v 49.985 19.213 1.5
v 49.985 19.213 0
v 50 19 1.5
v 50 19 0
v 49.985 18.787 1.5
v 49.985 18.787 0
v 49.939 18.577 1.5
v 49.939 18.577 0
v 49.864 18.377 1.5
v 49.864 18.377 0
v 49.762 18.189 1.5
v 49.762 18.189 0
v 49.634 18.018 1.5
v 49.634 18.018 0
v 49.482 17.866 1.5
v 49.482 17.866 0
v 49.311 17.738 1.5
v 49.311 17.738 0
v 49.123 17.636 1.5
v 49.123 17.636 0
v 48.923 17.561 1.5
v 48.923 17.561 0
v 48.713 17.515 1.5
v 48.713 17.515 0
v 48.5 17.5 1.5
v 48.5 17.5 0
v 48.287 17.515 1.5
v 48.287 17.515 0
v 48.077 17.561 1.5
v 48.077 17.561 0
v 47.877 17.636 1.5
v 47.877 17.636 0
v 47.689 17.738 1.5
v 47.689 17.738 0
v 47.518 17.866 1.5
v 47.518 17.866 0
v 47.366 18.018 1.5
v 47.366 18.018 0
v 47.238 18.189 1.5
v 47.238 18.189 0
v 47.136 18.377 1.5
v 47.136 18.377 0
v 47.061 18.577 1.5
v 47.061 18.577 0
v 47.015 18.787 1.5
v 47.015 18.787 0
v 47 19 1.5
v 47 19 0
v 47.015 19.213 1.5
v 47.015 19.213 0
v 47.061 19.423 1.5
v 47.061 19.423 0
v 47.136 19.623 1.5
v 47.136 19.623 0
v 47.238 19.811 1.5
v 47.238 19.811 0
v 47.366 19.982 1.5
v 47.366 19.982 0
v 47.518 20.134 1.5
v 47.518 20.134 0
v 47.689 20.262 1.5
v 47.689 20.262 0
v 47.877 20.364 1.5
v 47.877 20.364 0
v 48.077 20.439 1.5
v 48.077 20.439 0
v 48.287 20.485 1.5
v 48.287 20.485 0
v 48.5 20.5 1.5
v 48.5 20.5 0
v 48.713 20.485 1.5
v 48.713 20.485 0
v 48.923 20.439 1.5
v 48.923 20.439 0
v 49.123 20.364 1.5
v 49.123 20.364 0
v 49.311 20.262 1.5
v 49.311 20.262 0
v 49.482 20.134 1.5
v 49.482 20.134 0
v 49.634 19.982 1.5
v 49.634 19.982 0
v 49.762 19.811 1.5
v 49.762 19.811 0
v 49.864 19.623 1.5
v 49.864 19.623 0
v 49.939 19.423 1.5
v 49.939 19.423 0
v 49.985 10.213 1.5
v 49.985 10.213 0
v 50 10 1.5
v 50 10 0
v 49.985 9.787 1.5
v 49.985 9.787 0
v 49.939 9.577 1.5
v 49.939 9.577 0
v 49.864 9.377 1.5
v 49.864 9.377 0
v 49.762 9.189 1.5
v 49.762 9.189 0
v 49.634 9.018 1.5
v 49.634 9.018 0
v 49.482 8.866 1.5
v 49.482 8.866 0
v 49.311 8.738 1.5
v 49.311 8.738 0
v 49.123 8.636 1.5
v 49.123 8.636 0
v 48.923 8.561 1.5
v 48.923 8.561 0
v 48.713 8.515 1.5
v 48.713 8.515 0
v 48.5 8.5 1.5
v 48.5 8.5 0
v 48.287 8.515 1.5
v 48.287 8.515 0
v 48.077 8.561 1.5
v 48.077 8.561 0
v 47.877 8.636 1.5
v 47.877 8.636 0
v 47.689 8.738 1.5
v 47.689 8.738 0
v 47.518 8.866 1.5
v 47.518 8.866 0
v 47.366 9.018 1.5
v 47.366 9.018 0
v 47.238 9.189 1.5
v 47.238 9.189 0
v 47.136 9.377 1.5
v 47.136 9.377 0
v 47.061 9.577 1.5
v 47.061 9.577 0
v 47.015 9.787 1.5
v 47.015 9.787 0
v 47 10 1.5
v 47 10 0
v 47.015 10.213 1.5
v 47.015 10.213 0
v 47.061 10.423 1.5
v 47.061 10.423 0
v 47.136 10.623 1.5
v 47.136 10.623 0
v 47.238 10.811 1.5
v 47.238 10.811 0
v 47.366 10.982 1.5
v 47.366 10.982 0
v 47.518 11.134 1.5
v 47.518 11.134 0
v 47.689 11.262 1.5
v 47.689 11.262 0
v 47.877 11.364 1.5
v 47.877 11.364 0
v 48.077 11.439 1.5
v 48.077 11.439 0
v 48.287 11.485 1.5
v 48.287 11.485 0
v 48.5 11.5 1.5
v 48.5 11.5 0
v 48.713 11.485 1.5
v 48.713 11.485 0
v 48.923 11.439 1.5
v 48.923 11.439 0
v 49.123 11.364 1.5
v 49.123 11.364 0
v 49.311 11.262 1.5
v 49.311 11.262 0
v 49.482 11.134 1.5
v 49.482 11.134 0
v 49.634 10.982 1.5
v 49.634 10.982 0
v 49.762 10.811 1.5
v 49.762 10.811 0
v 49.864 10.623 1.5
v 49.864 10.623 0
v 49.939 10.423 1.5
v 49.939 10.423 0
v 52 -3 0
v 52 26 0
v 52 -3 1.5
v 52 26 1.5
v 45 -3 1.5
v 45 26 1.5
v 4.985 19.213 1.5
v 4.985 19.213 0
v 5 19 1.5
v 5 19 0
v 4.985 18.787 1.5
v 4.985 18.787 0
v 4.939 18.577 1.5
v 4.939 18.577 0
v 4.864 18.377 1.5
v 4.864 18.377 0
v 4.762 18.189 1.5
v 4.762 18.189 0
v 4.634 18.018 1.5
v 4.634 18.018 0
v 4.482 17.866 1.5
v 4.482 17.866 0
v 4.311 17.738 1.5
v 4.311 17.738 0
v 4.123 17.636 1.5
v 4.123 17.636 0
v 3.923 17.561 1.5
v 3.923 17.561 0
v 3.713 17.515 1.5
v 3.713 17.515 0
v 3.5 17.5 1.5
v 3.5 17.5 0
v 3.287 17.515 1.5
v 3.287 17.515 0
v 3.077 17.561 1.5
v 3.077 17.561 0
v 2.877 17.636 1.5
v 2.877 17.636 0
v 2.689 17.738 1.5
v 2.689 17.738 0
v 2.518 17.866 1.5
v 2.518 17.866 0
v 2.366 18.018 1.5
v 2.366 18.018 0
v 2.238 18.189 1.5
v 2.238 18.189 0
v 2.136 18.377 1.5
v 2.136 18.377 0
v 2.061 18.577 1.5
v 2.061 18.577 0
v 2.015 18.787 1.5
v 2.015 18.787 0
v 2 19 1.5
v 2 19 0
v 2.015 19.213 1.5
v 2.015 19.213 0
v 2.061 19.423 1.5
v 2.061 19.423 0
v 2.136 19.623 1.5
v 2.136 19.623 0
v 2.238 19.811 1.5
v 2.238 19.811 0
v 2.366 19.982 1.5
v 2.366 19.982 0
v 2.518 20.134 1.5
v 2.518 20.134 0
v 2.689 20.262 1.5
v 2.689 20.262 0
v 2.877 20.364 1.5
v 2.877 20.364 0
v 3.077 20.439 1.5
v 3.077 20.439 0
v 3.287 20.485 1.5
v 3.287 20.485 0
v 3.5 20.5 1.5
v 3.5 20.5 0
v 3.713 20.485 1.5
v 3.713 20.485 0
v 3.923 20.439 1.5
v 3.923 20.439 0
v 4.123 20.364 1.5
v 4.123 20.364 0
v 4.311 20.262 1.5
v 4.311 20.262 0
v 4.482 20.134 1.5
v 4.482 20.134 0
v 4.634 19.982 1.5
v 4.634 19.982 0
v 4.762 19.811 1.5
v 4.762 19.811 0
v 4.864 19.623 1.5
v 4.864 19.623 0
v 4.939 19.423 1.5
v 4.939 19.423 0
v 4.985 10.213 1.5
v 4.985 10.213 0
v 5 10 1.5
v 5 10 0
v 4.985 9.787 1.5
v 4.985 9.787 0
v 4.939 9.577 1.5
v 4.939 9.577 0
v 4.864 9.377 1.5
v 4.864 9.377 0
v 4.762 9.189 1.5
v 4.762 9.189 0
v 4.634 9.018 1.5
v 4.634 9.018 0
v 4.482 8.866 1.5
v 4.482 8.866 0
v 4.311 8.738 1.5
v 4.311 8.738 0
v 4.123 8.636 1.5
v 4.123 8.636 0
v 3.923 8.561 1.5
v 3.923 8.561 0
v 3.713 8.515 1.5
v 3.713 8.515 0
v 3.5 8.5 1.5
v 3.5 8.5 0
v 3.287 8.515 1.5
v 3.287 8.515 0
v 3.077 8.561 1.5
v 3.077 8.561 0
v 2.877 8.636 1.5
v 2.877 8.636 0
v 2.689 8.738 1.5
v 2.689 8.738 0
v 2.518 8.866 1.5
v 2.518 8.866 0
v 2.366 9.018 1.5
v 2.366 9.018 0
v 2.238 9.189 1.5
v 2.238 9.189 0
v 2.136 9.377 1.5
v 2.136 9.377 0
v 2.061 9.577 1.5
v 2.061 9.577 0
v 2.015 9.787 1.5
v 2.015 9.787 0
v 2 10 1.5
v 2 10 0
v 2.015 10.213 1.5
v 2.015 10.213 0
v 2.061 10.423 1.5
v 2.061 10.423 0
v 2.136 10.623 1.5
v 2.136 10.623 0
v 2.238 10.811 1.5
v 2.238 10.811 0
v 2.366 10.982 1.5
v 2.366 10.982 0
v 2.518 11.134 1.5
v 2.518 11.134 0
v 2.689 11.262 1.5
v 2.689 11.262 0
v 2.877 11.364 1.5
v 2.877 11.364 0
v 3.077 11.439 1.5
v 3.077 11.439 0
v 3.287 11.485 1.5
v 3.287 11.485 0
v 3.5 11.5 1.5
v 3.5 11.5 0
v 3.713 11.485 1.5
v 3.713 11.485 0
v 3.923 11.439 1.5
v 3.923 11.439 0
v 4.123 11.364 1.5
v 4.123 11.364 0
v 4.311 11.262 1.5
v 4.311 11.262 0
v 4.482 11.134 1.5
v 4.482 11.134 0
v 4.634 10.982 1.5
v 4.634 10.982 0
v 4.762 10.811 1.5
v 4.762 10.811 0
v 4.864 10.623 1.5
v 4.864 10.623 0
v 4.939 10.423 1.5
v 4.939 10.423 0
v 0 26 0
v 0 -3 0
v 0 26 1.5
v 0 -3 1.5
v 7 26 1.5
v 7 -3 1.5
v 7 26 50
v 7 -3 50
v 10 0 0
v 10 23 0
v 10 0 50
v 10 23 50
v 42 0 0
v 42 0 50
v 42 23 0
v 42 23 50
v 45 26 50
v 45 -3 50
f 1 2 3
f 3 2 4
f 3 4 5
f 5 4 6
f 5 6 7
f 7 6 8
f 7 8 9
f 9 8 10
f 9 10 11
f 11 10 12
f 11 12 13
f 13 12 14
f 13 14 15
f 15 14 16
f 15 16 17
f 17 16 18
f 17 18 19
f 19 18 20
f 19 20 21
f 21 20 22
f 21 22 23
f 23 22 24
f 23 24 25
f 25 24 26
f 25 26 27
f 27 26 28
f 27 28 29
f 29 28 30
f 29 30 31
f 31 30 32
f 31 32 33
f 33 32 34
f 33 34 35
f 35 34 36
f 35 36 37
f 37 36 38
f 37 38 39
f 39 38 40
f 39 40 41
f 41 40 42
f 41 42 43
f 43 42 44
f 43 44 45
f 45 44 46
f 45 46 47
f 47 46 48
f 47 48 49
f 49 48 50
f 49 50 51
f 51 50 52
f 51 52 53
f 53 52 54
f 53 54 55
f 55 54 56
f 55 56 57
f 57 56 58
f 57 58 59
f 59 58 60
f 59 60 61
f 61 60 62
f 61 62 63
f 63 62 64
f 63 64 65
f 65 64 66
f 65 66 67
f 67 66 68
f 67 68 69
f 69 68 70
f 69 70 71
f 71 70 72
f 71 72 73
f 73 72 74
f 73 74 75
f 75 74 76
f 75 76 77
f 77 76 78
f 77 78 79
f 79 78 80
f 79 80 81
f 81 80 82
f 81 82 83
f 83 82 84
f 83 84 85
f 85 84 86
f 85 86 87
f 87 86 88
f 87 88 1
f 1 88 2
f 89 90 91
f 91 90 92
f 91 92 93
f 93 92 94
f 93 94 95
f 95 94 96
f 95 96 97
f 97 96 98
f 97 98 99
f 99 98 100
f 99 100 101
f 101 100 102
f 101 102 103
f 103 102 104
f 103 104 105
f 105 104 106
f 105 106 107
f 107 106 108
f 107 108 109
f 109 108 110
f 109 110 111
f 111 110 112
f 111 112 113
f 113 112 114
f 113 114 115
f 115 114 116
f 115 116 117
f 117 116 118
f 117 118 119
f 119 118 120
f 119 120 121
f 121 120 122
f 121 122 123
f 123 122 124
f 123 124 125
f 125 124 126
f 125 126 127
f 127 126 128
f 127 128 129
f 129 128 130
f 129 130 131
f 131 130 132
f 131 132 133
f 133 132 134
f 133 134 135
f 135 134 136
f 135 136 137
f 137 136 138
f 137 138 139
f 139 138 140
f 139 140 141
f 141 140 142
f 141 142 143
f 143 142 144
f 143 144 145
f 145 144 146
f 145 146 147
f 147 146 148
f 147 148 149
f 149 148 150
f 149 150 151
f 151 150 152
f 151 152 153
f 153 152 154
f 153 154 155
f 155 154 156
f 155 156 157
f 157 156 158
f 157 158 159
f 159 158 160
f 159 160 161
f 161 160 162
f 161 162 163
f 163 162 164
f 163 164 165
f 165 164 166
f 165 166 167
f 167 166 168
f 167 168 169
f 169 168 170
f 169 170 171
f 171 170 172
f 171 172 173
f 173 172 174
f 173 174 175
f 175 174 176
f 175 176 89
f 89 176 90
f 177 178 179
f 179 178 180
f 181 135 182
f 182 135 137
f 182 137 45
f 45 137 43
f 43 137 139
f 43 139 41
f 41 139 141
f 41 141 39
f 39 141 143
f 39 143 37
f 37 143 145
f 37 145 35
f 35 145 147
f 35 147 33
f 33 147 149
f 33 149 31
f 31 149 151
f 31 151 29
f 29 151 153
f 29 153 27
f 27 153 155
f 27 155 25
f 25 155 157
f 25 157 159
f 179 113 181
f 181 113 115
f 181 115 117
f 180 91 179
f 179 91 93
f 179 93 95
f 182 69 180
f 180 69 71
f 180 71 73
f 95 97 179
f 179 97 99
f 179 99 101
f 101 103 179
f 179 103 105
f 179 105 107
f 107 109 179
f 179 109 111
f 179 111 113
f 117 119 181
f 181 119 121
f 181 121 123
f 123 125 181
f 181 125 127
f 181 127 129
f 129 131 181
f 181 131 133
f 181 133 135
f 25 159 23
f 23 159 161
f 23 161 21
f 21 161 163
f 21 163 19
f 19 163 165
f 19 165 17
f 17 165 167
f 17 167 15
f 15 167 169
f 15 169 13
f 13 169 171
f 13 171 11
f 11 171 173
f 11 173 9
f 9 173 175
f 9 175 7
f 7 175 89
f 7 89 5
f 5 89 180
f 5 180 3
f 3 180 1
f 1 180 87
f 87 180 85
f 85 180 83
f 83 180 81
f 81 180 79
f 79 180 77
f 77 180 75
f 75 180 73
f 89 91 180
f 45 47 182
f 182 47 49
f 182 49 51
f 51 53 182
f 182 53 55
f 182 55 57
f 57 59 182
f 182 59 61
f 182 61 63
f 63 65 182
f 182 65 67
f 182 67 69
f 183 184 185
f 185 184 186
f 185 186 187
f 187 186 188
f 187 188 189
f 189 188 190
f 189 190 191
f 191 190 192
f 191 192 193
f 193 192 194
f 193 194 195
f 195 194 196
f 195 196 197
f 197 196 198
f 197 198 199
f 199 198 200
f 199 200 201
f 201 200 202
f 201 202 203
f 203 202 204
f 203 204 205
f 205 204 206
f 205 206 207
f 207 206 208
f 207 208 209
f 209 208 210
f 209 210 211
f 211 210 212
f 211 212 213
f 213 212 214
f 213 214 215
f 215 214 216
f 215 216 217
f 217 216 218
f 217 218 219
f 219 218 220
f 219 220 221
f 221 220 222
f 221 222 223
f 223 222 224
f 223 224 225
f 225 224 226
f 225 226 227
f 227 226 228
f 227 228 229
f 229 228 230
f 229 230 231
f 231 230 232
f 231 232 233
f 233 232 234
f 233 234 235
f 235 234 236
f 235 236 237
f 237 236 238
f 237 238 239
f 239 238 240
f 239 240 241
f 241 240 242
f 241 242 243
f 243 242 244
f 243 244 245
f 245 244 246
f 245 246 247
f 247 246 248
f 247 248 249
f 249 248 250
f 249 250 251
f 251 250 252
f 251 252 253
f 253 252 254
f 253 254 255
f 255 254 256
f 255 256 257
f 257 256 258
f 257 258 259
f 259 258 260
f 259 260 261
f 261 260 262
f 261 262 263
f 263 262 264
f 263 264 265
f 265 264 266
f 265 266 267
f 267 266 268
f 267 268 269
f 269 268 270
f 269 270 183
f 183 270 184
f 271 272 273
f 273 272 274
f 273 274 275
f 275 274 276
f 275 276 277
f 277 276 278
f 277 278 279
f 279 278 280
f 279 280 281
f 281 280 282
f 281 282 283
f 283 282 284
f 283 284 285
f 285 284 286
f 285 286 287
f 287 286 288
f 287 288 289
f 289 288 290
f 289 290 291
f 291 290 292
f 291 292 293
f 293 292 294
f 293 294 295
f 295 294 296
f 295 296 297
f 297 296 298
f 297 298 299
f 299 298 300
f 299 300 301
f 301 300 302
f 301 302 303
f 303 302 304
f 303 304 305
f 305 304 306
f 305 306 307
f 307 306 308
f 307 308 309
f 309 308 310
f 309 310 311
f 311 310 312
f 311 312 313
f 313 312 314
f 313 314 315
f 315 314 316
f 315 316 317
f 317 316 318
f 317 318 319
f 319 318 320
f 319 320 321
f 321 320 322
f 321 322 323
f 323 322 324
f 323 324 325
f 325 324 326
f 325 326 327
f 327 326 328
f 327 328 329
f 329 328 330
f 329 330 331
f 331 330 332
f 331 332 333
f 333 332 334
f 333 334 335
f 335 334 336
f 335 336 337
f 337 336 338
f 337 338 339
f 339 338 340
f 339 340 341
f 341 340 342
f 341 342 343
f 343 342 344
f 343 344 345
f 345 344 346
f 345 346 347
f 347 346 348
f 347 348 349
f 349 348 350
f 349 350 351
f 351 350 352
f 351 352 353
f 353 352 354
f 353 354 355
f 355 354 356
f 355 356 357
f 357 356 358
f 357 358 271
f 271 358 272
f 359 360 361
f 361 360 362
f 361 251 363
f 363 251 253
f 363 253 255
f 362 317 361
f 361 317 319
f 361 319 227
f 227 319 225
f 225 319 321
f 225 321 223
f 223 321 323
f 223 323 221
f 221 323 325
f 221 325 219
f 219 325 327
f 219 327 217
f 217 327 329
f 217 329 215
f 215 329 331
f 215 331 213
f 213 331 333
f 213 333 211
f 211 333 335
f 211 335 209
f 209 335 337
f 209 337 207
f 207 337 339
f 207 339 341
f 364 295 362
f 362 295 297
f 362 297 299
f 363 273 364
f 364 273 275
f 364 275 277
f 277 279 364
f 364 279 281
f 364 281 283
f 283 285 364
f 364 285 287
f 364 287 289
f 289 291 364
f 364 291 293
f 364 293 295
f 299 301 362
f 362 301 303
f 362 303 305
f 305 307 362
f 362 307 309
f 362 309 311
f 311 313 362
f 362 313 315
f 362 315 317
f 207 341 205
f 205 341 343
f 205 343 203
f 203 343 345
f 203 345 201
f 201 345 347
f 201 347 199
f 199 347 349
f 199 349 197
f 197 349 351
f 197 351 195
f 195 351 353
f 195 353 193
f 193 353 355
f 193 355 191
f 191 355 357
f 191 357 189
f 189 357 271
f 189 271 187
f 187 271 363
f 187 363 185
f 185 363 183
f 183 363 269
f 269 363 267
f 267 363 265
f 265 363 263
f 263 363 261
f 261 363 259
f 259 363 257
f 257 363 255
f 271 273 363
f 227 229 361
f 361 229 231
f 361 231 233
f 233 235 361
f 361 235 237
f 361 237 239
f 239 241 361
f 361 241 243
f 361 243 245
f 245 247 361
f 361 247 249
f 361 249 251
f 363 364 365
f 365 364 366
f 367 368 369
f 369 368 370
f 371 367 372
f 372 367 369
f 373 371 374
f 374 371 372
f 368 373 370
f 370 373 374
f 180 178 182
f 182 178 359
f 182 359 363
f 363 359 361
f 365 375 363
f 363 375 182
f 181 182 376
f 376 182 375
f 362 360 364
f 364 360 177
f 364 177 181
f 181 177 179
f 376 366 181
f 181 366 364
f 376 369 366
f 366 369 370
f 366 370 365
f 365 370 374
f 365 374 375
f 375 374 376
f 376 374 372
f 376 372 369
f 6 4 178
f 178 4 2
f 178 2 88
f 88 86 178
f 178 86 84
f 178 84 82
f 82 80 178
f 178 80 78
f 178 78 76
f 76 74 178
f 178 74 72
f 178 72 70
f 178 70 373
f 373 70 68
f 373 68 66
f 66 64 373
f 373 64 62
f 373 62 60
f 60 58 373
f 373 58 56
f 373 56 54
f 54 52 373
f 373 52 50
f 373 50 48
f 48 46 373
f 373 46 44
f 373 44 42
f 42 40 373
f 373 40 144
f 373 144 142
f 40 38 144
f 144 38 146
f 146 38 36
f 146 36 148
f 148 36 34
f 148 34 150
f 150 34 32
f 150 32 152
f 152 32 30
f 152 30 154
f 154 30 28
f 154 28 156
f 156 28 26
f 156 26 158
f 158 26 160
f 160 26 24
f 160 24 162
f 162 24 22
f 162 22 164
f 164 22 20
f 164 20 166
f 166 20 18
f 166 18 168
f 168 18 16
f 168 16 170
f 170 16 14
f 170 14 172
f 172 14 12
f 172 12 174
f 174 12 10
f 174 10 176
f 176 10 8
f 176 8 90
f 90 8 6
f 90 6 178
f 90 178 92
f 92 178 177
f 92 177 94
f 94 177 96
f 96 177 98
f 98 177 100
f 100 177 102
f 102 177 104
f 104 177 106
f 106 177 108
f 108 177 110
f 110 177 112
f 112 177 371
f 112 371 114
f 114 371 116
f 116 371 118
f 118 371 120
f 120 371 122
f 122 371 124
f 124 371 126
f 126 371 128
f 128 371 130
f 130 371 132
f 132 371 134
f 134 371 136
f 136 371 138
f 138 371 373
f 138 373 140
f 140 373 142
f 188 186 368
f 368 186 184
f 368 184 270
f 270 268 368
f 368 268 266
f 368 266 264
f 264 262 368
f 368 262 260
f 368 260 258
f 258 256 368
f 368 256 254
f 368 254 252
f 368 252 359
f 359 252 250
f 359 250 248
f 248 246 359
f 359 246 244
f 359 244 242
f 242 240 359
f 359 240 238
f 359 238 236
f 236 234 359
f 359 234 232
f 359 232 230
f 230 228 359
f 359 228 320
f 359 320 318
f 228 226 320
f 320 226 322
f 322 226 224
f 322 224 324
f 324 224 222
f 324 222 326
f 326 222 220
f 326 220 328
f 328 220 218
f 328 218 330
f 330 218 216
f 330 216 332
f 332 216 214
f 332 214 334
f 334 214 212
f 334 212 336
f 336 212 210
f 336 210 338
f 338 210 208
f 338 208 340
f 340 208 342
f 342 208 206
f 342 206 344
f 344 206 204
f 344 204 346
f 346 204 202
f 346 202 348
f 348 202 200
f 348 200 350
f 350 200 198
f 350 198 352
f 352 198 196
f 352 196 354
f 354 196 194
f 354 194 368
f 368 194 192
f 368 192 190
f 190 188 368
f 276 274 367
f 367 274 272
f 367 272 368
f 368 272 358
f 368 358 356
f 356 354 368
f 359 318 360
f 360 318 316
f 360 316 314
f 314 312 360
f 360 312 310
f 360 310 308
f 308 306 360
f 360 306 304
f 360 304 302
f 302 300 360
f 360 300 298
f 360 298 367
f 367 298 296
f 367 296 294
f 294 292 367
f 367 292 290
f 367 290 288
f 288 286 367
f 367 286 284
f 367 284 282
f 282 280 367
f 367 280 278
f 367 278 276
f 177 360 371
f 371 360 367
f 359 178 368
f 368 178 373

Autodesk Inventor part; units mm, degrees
ref_plane "YZ Plane" through (0, 0, 0) normal (1, 0, 0) x (0, 1, 0)
ref_plane "XZ Plane" through (0, 0, 0) normal (0, 1, 0) x (-1, 0, 0)
ref_plane "XY Plane" through (0, 0, 0) normal (0, 0, 1) x (1, 0, 0)
sketch "sketch" plane through (0, 0, 0) normal (0, 0, 1) x (1, 0, 0)
  line L0 (-10.4, 0) -> (62.4, 0) construction
  line L1 (0, -8.8) -> (0, 31.8) construction
  line L2 (0, 26) -> (52, 26)
  line L3 (52, 26) -> (52, 0)
  line L4 (52, 0) -> (0, 0)
  line L5 (0, 0) -> (0, 26)
  circle A0 centre (3.5, 19) radius 1.5
  circle A1 centre (3.5, 10) radius 1.5
  circle A2 centre (48.5, 19) radius 1.5
  circle A3 centre (48.5, 10) radius 1.5
  line L6 (10, 23) -> (42, 23)
  line L7 (42, 23) -> (42, 0)
  line L8 (42, 0) -> (10, 0)
  line L9 (10, 0) -> (10, 23)
  line L10 (0, 0) -> (52, 0)
  line L11 (52, 0) -> (52, -3)
  line L12 (52, -3) -> (0, -3)
  line L13 (0, -3) -> (0, 0)
  line L14 (7, 23) -> (10, 23)
  line L15 (10, 23) -> (10, 0)
  line L16 (10, 0) -> (7, 0)
  line L17 (7, 0) -> (7, 23)
  line L18 (42, 23) -> (45, 23)
  line L19 (45, 23) -> (45, 0)
  line L20 (45, 0) -> (42, 0)
  line L21 (42, 0) -> (42, 23)
  line L22 (0, 23) -> (7, 23)
  line L23 (45, 23) -> (52, 23)
  line L24 (7, 26) -> (7, 22.7671)
  line L25 (45, 26) -> (45, 23)
  line L26 (7, 0) -> (7, -3)
  line L27 (45, 0) -> (45, -3)
  point P0 (52, 0)
  dimension "d0" = 26
  dimension "d1" = 52
  dimension "d2" = 3
  dimension "d3" = 3
  dimension "d4" = 3
  dimension "d5" = 3
  dimension "d6" = 3.5
  dimension "d7" = 3.5
  dimension "d8" = 3.5
  dimension "d10" = 7
  dimension "d11" = 7
  dimension "d12" = 10
  dimension "d13" = 10
  dimension "d14" = 3
  dimension "d15" = 10
  dimension "d16" = 10
  dimension "d17" = 3
  dimension "d18" = 3
  dimension "d19" = 3
  dimension "d20" = 3.5
extrude "body" add sketch "sketch" along normal blind 50 contours L2 L25 L18 L6 L14 L24 | L14 L9 L4 L17 | L19 L4 L7 L18 | L4 L27 L12 L26
extrude "bolt" add sketch "sketch" along normal blind 1.5 contours L2 L24 L22 L5 | L22 L17 L4 L5 | L2 L3 L23 L25 | L4 L26 L12 L13 | L23 L3 L4 L19 | L4 L11 L12 L27
equation "\"d3\" = d2"
equation "\"d4\" = d2"
equation "\"d5\" = d2"
equation "\"d7\" = d6"
equation "\"d8\" = d6"
equation "\"d11\" = d10"
equation "\"d13\" = d12"
properties part number "battery"
